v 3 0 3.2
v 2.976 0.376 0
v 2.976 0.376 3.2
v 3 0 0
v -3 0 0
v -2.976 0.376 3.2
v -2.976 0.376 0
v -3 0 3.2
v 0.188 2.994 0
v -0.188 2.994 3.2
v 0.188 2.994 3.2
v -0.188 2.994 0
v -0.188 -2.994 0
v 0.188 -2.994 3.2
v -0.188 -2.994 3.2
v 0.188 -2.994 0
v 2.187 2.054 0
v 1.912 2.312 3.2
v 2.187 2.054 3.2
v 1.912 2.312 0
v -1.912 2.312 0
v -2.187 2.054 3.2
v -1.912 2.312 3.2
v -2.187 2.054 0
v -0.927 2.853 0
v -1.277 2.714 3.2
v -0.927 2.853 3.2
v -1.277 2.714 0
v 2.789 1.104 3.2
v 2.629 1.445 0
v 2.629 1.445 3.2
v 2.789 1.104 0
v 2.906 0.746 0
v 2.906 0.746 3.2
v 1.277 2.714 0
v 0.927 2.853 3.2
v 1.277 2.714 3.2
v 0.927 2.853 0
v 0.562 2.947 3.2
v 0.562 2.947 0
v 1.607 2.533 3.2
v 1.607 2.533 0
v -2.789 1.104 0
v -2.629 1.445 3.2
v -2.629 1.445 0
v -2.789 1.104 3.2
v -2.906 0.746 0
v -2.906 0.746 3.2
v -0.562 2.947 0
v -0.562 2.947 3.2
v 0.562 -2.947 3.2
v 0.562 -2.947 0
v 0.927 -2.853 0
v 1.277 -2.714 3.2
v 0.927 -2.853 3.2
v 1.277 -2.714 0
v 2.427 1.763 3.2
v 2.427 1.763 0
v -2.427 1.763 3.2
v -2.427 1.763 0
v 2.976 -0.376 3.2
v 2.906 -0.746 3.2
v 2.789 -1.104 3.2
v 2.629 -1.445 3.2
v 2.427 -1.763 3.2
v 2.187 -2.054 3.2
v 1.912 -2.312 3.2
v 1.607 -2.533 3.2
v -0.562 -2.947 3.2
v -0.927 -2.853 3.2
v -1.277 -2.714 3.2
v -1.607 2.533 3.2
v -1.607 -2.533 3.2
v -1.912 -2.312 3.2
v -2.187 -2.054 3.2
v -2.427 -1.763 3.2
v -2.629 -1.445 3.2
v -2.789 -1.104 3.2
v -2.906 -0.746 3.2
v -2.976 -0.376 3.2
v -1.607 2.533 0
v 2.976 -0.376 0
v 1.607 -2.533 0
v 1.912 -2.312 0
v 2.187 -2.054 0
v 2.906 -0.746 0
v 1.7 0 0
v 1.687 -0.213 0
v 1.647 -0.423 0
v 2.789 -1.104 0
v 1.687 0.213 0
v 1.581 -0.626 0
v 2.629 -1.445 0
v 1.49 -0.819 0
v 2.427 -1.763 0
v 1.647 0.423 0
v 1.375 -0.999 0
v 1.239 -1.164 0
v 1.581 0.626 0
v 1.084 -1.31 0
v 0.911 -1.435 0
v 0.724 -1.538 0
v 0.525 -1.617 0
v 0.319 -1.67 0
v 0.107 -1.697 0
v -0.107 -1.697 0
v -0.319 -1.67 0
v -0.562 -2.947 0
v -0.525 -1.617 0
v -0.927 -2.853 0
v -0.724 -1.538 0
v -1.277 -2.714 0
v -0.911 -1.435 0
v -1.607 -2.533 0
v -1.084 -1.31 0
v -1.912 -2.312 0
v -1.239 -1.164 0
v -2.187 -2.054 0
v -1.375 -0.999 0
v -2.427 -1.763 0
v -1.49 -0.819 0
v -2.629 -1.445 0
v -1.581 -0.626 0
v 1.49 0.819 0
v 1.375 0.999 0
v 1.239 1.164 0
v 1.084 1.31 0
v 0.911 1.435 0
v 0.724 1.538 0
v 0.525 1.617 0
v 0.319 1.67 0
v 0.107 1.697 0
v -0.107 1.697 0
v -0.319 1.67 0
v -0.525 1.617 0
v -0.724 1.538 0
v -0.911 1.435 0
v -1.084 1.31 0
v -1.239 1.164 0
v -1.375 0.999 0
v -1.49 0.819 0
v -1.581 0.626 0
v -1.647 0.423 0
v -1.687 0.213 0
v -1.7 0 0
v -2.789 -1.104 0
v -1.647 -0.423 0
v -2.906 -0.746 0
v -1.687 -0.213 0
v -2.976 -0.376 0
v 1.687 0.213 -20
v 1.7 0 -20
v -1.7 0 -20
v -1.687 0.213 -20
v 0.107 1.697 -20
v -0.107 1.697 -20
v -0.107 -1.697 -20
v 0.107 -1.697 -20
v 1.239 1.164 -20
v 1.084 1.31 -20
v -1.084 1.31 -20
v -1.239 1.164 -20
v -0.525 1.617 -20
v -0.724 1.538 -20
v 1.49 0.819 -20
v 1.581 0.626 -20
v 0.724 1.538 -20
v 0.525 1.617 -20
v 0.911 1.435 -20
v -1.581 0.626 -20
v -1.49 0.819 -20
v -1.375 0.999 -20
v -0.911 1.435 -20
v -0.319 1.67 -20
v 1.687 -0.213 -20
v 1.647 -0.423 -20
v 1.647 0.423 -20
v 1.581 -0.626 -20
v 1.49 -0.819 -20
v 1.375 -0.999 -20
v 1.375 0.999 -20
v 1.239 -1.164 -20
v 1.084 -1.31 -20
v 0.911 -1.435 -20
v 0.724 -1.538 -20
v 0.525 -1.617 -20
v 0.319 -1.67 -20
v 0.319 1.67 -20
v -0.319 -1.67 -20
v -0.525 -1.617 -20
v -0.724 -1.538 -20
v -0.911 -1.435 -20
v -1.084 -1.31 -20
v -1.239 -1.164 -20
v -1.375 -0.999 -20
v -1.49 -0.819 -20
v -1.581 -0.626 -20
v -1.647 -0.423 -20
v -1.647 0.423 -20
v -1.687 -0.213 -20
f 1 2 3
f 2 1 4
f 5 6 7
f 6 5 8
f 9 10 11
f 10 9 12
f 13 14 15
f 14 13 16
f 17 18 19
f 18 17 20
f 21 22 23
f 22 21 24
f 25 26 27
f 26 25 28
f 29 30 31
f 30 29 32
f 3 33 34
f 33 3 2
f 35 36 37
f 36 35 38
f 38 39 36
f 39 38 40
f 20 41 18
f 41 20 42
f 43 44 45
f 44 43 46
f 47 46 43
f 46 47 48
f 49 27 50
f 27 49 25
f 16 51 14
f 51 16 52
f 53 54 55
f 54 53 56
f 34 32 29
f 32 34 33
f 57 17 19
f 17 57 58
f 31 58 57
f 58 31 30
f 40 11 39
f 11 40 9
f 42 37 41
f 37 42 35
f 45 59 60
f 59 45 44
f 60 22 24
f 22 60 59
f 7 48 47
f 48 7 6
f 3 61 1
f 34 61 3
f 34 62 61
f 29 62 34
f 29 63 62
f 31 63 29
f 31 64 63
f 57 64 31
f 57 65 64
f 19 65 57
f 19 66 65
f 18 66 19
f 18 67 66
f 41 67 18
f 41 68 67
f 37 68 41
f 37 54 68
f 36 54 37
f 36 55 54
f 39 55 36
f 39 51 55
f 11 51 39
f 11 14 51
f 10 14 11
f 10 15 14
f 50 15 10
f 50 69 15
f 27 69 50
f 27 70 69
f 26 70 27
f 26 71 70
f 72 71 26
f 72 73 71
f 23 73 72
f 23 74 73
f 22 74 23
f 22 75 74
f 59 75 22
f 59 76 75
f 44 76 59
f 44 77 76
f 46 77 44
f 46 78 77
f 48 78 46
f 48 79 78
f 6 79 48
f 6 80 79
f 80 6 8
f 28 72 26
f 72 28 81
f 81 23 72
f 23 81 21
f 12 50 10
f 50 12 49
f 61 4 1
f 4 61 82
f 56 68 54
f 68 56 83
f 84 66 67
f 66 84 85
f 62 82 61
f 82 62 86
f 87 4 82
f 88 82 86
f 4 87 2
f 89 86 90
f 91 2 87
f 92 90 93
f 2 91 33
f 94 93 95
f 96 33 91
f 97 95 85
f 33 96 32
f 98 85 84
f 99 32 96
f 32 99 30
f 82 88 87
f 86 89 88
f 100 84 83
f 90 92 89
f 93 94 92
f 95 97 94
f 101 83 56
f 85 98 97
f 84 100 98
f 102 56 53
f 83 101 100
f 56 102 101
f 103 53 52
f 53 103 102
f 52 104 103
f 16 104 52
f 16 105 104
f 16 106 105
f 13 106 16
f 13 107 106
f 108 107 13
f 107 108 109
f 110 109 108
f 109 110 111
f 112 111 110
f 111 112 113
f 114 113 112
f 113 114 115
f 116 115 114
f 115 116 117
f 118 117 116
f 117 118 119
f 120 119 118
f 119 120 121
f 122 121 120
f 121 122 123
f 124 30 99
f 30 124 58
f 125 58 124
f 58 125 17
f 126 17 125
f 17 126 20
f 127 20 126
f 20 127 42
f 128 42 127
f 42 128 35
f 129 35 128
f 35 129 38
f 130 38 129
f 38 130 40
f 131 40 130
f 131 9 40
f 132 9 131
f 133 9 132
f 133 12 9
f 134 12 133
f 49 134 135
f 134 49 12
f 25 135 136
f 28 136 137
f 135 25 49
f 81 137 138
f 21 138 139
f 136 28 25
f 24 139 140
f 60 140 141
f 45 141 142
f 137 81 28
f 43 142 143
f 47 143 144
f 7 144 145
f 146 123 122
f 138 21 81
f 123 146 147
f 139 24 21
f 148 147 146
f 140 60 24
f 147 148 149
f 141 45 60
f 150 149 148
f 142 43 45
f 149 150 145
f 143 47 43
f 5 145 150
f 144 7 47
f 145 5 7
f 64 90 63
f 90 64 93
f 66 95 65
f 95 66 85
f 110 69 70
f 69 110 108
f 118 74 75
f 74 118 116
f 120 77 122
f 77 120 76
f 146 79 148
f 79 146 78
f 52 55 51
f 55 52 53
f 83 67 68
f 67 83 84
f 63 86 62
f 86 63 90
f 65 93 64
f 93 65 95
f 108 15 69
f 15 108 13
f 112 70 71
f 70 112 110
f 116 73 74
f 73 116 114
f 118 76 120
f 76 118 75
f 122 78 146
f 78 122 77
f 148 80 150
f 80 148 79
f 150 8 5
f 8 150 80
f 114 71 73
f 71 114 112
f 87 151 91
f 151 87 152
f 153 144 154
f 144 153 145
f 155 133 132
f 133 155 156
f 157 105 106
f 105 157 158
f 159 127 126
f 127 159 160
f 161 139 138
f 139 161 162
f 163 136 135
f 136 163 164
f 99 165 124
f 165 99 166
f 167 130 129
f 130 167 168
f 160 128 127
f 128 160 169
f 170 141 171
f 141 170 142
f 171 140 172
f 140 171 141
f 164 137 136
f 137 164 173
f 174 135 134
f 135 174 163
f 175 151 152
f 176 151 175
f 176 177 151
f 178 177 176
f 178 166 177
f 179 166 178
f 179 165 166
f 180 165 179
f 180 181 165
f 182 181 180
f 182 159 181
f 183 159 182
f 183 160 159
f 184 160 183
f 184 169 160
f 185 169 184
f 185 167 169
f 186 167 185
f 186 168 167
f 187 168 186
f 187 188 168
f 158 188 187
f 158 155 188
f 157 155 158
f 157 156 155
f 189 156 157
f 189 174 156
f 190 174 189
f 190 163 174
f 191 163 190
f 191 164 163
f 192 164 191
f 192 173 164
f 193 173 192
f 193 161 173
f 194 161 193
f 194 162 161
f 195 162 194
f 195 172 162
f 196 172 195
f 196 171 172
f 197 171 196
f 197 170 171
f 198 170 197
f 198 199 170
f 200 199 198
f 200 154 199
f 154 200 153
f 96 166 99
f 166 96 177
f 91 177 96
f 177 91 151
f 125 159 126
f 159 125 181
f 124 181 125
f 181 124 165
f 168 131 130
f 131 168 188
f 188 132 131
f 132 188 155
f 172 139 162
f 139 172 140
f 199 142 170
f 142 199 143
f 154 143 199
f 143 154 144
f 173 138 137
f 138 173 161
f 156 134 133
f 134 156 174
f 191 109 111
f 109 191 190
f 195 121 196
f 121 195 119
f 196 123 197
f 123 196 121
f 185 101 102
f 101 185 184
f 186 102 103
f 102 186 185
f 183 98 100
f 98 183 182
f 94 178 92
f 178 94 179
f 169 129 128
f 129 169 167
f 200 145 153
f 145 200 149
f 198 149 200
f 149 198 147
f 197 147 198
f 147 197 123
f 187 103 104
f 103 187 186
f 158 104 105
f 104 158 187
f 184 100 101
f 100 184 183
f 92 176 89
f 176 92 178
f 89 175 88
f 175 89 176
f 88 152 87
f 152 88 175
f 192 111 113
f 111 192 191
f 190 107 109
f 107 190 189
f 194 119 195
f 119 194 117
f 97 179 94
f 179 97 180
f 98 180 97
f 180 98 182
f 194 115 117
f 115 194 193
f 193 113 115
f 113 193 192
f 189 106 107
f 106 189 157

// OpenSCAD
$fn = 50;


difference() {
	union() {
		translate(v = [0, 0, 0]) {
			rotate(a = [0, 0, 0]) {
				cylinder(h = 3.2000000000, r = 3.0000000000);
			}
		}
		translate(v = [0, 0, -20]) {
			rotate(a = [0, 0, 0]) {
				cylinder(h = 20, r = 1.7000000000);
			}
		}
	}
	union();
}
